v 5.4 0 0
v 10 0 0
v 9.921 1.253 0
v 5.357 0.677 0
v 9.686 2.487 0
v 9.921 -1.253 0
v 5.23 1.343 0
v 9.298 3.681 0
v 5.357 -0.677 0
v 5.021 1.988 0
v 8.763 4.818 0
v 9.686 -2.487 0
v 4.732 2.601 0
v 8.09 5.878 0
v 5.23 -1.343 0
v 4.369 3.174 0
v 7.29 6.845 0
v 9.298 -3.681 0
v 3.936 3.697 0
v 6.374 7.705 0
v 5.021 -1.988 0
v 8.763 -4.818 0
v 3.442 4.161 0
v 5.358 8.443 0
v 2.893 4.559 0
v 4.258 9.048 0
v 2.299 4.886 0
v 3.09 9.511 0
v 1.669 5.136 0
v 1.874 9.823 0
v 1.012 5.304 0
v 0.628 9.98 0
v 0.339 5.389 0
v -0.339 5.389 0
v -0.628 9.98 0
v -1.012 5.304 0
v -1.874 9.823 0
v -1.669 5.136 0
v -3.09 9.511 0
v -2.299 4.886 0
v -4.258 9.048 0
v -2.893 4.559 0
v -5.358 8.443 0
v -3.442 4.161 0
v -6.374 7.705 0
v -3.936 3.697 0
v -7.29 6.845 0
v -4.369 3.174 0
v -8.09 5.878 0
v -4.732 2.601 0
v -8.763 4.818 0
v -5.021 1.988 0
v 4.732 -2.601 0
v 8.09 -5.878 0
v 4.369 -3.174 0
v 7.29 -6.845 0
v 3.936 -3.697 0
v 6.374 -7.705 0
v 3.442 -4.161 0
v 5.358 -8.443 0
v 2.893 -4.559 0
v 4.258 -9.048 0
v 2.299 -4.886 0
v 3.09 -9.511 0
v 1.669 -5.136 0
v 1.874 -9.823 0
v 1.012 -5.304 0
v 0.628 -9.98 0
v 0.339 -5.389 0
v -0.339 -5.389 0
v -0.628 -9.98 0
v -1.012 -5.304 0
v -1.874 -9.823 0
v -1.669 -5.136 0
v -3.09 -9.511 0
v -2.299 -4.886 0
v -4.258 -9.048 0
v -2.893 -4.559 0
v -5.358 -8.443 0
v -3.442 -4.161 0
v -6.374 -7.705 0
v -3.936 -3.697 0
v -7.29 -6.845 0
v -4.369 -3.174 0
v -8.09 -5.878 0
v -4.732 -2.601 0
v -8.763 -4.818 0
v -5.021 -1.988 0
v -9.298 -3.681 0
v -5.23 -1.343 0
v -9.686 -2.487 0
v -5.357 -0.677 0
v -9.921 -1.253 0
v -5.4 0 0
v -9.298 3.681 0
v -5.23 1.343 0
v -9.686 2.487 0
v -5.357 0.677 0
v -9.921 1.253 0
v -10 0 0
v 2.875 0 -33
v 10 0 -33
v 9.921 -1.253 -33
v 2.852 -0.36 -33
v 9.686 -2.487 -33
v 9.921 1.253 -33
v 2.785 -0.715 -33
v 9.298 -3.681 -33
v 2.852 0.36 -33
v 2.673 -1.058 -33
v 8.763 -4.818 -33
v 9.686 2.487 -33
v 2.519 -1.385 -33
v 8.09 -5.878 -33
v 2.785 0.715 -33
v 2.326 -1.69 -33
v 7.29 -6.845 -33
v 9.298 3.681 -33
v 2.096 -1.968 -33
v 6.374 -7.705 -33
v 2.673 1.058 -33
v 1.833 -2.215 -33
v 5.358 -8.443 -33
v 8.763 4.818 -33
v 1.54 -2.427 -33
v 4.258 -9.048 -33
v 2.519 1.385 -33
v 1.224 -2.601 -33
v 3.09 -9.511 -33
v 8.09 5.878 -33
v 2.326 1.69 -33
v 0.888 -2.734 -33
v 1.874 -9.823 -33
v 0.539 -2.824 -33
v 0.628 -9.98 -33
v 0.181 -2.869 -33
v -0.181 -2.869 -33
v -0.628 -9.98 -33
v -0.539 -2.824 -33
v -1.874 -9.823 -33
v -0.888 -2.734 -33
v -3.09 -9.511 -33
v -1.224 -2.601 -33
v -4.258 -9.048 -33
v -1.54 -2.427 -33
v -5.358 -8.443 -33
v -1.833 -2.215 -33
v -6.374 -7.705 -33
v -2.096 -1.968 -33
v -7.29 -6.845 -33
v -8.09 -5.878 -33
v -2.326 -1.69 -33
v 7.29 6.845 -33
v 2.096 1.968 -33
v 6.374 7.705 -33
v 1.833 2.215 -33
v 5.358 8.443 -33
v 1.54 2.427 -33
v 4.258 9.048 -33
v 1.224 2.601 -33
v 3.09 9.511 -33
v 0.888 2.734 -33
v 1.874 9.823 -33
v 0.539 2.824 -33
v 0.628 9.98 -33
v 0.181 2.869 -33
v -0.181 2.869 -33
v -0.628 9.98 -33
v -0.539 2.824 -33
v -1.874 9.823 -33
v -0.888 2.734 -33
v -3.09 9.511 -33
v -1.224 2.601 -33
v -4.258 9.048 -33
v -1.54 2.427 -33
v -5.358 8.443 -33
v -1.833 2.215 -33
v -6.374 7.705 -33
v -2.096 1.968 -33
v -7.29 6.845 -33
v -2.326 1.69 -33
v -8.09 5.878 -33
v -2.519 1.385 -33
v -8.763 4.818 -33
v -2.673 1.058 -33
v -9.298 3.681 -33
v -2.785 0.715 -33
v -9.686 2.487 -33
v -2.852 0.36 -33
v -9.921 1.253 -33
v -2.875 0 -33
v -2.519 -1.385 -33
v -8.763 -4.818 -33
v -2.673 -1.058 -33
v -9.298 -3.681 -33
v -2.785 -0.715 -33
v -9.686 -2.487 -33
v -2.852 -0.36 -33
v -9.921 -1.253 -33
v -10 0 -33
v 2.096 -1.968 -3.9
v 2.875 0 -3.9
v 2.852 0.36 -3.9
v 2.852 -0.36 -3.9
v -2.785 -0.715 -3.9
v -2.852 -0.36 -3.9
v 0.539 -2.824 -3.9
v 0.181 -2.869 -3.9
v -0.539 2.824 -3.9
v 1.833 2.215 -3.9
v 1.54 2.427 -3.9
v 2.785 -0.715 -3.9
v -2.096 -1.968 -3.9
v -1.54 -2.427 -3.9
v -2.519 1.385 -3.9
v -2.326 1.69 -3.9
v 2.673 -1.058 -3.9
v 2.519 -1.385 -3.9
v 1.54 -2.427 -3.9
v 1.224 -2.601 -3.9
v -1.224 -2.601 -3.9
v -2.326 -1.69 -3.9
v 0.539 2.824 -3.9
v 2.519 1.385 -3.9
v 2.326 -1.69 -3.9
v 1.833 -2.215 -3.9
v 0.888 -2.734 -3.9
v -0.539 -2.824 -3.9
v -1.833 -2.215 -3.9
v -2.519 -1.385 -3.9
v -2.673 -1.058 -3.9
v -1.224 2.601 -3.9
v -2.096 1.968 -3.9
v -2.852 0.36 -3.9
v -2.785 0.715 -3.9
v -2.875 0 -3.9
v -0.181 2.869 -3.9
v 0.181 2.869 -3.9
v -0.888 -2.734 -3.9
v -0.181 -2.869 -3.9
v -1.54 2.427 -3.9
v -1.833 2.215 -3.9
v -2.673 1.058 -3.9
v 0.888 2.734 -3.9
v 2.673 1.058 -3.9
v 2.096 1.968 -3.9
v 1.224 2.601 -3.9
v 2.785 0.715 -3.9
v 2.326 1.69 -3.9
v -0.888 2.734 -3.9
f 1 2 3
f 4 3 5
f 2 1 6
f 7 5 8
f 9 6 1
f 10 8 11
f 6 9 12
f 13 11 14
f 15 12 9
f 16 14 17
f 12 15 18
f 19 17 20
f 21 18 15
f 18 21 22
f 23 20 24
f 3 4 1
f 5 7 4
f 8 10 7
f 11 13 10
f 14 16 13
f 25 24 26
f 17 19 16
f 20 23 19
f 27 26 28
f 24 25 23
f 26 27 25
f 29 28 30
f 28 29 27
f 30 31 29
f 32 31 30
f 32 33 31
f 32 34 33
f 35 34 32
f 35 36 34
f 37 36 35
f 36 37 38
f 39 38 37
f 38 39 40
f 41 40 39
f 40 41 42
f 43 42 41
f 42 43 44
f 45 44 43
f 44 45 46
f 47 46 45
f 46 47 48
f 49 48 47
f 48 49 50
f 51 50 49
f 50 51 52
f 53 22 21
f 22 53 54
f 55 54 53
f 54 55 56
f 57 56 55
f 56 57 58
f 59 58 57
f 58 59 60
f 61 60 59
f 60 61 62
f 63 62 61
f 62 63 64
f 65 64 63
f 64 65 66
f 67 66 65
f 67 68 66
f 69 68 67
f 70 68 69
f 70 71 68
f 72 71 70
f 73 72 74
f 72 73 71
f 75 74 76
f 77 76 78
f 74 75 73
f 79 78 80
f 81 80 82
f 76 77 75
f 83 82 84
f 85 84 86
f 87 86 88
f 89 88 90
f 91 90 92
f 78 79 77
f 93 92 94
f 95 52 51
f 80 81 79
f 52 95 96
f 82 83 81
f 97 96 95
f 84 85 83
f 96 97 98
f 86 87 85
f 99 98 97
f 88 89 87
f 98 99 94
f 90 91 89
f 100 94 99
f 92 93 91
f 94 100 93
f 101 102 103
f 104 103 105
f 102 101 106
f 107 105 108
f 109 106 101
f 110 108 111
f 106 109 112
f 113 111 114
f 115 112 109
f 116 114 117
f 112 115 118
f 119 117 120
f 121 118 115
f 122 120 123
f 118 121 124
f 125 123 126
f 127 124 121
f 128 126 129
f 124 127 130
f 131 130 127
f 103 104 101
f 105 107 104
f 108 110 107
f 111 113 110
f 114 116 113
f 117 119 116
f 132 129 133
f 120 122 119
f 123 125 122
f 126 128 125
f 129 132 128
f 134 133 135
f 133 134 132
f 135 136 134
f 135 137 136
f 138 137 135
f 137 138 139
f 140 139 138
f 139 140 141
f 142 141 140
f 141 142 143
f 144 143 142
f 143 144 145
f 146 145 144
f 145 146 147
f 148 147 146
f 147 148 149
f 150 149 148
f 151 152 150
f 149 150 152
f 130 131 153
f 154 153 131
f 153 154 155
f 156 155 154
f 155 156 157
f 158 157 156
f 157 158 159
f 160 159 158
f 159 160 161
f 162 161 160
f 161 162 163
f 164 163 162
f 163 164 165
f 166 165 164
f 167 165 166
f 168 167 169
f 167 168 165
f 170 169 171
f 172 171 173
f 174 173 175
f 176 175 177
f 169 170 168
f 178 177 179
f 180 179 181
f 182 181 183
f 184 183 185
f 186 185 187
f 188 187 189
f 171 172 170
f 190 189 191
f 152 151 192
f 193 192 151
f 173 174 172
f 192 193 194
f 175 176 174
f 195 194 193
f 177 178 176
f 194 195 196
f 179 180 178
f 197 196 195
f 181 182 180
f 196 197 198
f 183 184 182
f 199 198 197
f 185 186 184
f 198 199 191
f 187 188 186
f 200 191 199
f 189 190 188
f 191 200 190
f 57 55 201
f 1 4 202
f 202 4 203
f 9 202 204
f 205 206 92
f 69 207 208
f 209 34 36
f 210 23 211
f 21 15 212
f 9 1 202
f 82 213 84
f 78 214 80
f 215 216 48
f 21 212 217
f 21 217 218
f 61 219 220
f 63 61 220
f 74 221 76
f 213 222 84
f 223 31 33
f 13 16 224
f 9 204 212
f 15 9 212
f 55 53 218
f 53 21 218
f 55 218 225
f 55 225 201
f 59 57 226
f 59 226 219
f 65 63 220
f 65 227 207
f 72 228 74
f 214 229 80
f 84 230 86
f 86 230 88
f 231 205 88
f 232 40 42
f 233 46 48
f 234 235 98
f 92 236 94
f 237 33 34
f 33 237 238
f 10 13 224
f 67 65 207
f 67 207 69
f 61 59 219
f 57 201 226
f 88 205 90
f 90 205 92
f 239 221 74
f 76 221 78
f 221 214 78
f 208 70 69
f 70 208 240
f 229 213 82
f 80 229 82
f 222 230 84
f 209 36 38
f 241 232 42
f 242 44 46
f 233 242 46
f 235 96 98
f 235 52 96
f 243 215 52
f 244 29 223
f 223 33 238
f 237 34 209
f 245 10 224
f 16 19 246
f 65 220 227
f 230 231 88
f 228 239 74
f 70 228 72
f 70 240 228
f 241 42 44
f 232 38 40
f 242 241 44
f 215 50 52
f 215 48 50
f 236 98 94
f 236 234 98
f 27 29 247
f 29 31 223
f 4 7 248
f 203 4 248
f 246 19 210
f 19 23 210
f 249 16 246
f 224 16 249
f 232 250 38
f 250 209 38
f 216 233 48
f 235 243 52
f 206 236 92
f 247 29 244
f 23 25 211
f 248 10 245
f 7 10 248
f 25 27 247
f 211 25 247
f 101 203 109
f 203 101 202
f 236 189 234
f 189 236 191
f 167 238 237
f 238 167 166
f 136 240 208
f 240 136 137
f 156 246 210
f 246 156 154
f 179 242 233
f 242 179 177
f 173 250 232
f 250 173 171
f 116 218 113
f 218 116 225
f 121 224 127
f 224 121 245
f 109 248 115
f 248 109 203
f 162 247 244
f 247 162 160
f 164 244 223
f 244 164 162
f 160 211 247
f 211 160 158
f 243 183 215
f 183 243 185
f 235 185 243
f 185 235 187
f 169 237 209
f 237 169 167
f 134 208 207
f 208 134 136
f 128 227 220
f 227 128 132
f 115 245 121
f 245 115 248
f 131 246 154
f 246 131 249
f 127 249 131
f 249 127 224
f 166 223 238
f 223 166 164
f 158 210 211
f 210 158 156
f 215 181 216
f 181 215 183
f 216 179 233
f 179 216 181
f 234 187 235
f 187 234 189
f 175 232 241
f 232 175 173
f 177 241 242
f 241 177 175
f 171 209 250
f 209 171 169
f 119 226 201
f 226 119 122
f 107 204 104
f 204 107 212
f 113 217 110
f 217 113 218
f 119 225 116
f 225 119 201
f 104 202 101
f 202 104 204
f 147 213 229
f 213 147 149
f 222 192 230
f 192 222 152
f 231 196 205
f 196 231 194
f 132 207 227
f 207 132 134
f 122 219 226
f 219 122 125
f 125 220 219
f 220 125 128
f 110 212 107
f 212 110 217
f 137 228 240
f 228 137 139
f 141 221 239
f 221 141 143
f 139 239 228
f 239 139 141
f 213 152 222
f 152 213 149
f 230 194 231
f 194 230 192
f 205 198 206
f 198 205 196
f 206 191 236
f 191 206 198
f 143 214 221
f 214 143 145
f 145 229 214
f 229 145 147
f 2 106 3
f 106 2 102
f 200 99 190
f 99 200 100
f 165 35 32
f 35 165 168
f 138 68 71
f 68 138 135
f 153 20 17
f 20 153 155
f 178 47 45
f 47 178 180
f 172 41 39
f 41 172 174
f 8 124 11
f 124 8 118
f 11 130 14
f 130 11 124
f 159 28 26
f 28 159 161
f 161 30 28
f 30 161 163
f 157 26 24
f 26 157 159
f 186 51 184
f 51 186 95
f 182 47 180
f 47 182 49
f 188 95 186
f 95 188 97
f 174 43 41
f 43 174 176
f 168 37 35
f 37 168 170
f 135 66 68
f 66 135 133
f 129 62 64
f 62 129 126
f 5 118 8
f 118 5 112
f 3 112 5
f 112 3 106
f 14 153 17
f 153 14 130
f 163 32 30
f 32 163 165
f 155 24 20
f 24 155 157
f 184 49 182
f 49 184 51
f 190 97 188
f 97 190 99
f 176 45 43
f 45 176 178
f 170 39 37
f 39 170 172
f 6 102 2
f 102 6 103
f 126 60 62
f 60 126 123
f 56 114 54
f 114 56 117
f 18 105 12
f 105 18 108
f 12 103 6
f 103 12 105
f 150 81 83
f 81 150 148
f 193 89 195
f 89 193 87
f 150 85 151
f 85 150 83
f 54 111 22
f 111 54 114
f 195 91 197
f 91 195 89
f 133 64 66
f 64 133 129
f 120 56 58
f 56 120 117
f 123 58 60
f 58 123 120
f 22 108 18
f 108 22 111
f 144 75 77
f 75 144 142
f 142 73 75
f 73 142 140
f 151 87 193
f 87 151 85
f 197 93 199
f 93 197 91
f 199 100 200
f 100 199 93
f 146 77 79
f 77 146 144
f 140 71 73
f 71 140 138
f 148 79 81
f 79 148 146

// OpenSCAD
$fn = 50;


difference() {
	union() {
		translate(v = [0, 0, -33.0000000000]) {
			cylinder(h = 33, r = 10.0000000000);
		}
		cylinder(h = 0, r = 13.0000000000);
	}
	union() {
		translate(v = [0, 0, 0]) {
			rotate(a = [0, 0, 0]) {
				difference() {
					union() {
						#translate(v = [0, 0, -33.0000000000]) {
							cylinder(h = 33, r = 2.6000000000);
						}
						#translate(v = [0, 0, -3.9000000000]) {
							cylinder(h = 3.9000000000, r = 10.0000000000, r1 = 2.8750000000, r2 = 5.4000000000);
						}
						#translate(v = [0, 0, -33.0000000000]) {
							cylinder(h = 33, r = 2.8750000000);
						}
						#translate(v = [0, 0, -33.0000000000]) {
							cylinder(h = 33, r = 2.6000000000);
						}
					}
					union();
				}
			}
		}
	}
}
